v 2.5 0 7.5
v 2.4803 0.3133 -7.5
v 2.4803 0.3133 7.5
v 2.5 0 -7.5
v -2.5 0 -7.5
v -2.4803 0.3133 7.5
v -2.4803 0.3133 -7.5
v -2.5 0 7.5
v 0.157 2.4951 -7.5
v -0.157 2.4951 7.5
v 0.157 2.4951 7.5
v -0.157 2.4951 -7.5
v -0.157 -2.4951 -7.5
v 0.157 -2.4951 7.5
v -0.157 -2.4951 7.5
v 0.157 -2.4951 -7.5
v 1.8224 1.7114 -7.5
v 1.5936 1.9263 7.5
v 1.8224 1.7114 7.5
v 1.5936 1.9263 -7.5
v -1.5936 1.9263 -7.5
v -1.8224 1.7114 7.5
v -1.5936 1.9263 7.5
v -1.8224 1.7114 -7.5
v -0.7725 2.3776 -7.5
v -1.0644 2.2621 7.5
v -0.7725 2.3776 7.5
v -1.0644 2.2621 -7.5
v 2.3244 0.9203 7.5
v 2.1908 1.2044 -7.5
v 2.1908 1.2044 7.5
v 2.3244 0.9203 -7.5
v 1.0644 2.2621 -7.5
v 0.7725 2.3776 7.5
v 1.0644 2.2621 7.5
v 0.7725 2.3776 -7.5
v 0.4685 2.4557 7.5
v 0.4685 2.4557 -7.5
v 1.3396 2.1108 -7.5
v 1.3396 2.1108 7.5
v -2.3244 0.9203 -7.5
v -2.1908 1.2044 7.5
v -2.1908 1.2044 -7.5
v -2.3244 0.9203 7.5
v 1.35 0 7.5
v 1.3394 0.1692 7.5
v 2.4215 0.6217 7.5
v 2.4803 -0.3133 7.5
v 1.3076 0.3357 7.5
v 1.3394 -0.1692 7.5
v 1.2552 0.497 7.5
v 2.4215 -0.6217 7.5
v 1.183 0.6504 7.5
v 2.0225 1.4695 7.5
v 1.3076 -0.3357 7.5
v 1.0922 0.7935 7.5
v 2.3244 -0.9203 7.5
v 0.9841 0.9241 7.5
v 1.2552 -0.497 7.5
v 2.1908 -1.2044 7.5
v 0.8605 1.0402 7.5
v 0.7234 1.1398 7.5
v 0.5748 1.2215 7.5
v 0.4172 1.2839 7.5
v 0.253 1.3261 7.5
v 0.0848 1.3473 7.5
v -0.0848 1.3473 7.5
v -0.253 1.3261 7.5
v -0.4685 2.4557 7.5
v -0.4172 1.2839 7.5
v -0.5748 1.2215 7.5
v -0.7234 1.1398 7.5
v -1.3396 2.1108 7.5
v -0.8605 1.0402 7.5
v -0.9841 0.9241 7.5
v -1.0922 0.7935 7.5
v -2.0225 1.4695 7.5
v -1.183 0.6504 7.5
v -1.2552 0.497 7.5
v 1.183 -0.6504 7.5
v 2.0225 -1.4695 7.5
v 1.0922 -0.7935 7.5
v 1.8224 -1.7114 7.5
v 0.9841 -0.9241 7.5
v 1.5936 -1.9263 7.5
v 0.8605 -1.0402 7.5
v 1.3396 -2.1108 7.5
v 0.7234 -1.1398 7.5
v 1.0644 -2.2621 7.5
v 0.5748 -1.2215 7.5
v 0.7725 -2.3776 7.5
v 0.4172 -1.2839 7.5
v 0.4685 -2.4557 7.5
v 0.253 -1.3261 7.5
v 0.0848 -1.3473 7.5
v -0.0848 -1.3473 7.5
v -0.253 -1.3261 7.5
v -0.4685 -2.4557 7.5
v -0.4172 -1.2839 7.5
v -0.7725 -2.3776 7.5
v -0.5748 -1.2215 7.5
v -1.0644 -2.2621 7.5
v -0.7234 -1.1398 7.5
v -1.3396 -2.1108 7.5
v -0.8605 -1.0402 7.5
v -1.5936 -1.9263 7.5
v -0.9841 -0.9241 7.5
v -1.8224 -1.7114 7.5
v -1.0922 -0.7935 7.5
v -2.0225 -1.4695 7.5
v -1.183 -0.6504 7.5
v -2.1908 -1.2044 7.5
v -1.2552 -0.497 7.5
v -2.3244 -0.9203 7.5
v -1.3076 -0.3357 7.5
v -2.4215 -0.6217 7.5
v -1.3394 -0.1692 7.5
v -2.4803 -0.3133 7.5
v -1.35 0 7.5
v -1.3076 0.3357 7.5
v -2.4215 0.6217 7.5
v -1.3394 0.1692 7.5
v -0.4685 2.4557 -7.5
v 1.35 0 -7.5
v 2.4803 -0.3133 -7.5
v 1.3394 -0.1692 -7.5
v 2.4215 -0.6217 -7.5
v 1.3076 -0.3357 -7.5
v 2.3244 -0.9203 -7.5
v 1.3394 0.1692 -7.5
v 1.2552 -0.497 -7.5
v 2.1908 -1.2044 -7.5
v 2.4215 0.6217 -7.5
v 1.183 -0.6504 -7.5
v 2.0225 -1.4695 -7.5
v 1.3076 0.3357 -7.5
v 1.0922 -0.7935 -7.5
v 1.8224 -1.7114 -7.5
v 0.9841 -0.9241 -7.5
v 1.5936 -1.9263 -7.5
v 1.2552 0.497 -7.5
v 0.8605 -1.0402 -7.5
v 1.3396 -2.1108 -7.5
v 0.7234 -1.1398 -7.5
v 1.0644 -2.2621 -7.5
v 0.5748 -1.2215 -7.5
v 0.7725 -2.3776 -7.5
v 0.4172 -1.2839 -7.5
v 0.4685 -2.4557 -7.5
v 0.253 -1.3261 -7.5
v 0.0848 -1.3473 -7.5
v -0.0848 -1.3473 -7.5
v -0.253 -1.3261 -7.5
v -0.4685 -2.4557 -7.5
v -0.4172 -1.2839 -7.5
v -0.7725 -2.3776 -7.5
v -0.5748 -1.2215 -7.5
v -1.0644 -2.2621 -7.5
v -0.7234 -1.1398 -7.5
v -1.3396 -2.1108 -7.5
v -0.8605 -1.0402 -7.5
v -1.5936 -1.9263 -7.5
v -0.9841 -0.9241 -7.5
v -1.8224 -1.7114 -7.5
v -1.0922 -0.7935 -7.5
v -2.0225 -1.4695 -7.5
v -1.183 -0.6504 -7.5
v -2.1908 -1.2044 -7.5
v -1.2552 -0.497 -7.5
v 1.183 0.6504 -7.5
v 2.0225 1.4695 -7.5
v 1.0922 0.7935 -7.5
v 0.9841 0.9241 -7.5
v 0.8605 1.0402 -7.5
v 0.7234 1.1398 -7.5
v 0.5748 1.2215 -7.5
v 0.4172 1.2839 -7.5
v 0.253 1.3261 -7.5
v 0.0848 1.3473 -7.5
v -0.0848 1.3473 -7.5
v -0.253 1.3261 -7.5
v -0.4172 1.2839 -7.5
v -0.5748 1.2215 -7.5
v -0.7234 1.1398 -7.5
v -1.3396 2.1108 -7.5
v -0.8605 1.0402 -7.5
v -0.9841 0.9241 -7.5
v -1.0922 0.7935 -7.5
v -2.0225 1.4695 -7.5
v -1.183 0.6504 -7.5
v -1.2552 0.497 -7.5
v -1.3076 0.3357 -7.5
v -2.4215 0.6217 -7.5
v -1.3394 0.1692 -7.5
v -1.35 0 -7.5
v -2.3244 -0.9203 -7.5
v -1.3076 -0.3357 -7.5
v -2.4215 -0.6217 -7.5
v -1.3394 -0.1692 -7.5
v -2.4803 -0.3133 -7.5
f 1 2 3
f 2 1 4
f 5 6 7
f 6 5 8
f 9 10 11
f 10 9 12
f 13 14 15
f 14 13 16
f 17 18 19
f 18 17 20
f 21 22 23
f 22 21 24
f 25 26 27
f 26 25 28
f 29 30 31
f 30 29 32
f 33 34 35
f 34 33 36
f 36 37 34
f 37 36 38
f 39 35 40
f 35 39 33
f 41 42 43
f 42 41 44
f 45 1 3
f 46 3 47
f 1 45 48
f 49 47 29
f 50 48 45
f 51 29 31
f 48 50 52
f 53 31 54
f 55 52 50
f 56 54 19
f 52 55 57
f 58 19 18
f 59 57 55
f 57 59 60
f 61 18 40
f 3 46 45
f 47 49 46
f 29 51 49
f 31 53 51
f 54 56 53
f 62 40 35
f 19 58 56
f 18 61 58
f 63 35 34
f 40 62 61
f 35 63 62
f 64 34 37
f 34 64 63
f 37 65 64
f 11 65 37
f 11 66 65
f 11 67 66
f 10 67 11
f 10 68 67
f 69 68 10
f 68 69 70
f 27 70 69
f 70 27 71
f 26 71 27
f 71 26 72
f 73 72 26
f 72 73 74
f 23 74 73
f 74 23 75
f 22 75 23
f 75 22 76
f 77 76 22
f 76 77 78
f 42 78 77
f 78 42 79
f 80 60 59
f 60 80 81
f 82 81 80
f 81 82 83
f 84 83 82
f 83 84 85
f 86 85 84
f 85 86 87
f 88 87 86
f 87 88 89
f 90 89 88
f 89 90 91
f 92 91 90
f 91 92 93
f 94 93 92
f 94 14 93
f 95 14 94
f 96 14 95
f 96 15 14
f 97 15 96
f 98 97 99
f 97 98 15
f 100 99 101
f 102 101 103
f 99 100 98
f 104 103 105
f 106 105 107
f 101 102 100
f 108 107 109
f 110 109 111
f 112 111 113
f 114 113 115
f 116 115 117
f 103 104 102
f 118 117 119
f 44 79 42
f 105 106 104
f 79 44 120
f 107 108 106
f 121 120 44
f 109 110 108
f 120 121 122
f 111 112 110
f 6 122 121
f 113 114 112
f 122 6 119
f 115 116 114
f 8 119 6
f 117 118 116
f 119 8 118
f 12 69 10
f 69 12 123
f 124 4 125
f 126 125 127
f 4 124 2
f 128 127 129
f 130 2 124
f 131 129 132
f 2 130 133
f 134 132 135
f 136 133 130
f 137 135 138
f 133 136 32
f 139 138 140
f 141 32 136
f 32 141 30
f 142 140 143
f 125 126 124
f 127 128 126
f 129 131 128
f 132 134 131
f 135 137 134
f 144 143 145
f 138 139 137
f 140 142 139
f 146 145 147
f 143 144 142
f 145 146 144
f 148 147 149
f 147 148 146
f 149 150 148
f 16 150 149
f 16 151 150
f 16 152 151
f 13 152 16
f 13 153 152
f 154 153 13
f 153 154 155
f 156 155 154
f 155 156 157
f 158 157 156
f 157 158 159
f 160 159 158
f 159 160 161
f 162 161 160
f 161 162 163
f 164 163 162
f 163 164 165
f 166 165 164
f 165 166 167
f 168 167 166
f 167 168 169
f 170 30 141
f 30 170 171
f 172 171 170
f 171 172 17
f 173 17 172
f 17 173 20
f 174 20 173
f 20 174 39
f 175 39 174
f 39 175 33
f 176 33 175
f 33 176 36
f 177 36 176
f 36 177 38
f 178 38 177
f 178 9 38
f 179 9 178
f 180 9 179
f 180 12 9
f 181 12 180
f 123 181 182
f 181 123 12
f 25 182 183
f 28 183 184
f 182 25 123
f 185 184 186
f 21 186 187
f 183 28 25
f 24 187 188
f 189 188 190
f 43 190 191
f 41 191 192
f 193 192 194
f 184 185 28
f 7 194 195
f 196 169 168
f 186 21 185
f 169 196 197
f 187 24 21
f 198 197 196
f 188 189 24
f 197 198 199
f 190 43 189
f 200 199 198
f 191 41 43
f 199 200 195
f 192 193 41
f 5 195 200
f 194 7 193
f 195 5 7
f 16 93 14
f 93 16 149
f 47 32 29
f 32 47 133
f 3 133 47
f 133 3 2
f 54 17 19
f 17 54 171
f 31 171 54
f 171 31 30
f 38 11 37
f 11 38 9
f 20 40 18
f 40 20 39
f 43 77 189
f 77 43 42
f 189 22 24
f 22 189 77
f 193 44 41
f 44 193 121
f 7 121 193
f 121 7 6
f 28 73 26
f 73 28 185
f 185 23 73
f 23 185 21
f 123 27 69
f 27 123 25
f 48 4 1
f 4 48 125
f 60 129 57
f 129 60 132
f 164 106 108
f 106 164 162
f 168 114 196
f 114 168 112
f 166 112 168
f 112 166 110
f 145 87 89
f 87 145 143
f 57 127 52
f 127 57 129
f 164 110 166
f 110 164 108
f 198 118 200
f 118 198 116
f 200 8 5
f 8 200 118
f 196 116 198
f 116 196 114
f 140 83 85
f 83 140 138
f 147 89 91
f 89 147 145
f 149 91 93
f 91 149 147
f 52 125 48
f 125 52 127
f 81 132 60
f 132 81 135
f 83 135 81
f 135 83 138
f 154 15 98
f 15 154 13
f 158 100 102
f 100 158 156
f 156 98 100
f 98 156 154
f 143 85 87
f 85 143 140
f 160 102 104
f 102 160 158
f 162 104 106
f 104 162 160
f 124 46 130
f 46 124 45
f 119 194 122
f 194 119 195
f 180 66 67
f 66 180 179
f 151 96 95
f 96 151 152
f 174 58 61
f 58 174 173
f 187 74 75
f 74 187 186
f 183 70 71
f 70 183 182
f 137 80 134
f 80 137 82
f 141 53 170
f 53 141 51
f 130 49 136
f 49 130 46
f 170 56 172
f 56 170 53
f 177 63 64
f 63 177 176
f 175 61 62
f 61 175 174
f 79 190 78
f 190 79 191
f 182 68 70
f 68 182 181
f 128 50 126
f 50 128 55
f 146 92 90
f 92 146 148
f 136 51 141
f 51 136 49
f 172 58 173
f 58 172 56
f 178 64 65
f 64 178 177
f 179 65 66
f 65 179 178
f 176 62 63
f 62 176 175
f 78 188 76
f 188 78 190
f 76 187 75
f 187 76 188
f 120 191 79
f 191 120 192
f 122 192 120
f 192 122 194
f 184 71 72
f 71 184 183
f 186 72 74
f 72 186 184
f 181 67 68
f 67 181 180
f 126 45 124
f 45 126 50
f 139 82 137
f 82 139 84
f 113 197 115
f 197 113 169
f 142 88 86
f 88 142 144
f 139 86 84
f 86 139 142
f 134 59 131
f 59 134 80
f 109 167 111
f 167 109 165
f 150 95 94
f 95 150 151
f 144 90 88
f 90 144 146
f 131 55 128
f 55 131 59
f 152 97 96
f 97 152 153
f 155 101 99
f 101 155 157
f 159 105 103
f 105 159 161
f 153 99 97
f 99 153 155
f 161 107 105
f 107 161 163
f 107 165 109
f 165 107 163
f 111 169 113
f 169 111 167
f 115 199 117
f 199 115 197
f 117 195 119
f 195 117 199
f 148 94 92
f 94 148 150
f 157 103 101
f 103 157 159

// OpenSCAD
$fn = 50;


difference() {
	union() {
		translate(v = [0, 0, -7.5000000000]) {
			cylinder(h = 15, r = 2.5000000000);
		}
	}
	union() {
		translate(v = [0, 0, -100.0000000000]) {
			cylinder(h = 200, r = 1.3500000000);
		}
	}
}
